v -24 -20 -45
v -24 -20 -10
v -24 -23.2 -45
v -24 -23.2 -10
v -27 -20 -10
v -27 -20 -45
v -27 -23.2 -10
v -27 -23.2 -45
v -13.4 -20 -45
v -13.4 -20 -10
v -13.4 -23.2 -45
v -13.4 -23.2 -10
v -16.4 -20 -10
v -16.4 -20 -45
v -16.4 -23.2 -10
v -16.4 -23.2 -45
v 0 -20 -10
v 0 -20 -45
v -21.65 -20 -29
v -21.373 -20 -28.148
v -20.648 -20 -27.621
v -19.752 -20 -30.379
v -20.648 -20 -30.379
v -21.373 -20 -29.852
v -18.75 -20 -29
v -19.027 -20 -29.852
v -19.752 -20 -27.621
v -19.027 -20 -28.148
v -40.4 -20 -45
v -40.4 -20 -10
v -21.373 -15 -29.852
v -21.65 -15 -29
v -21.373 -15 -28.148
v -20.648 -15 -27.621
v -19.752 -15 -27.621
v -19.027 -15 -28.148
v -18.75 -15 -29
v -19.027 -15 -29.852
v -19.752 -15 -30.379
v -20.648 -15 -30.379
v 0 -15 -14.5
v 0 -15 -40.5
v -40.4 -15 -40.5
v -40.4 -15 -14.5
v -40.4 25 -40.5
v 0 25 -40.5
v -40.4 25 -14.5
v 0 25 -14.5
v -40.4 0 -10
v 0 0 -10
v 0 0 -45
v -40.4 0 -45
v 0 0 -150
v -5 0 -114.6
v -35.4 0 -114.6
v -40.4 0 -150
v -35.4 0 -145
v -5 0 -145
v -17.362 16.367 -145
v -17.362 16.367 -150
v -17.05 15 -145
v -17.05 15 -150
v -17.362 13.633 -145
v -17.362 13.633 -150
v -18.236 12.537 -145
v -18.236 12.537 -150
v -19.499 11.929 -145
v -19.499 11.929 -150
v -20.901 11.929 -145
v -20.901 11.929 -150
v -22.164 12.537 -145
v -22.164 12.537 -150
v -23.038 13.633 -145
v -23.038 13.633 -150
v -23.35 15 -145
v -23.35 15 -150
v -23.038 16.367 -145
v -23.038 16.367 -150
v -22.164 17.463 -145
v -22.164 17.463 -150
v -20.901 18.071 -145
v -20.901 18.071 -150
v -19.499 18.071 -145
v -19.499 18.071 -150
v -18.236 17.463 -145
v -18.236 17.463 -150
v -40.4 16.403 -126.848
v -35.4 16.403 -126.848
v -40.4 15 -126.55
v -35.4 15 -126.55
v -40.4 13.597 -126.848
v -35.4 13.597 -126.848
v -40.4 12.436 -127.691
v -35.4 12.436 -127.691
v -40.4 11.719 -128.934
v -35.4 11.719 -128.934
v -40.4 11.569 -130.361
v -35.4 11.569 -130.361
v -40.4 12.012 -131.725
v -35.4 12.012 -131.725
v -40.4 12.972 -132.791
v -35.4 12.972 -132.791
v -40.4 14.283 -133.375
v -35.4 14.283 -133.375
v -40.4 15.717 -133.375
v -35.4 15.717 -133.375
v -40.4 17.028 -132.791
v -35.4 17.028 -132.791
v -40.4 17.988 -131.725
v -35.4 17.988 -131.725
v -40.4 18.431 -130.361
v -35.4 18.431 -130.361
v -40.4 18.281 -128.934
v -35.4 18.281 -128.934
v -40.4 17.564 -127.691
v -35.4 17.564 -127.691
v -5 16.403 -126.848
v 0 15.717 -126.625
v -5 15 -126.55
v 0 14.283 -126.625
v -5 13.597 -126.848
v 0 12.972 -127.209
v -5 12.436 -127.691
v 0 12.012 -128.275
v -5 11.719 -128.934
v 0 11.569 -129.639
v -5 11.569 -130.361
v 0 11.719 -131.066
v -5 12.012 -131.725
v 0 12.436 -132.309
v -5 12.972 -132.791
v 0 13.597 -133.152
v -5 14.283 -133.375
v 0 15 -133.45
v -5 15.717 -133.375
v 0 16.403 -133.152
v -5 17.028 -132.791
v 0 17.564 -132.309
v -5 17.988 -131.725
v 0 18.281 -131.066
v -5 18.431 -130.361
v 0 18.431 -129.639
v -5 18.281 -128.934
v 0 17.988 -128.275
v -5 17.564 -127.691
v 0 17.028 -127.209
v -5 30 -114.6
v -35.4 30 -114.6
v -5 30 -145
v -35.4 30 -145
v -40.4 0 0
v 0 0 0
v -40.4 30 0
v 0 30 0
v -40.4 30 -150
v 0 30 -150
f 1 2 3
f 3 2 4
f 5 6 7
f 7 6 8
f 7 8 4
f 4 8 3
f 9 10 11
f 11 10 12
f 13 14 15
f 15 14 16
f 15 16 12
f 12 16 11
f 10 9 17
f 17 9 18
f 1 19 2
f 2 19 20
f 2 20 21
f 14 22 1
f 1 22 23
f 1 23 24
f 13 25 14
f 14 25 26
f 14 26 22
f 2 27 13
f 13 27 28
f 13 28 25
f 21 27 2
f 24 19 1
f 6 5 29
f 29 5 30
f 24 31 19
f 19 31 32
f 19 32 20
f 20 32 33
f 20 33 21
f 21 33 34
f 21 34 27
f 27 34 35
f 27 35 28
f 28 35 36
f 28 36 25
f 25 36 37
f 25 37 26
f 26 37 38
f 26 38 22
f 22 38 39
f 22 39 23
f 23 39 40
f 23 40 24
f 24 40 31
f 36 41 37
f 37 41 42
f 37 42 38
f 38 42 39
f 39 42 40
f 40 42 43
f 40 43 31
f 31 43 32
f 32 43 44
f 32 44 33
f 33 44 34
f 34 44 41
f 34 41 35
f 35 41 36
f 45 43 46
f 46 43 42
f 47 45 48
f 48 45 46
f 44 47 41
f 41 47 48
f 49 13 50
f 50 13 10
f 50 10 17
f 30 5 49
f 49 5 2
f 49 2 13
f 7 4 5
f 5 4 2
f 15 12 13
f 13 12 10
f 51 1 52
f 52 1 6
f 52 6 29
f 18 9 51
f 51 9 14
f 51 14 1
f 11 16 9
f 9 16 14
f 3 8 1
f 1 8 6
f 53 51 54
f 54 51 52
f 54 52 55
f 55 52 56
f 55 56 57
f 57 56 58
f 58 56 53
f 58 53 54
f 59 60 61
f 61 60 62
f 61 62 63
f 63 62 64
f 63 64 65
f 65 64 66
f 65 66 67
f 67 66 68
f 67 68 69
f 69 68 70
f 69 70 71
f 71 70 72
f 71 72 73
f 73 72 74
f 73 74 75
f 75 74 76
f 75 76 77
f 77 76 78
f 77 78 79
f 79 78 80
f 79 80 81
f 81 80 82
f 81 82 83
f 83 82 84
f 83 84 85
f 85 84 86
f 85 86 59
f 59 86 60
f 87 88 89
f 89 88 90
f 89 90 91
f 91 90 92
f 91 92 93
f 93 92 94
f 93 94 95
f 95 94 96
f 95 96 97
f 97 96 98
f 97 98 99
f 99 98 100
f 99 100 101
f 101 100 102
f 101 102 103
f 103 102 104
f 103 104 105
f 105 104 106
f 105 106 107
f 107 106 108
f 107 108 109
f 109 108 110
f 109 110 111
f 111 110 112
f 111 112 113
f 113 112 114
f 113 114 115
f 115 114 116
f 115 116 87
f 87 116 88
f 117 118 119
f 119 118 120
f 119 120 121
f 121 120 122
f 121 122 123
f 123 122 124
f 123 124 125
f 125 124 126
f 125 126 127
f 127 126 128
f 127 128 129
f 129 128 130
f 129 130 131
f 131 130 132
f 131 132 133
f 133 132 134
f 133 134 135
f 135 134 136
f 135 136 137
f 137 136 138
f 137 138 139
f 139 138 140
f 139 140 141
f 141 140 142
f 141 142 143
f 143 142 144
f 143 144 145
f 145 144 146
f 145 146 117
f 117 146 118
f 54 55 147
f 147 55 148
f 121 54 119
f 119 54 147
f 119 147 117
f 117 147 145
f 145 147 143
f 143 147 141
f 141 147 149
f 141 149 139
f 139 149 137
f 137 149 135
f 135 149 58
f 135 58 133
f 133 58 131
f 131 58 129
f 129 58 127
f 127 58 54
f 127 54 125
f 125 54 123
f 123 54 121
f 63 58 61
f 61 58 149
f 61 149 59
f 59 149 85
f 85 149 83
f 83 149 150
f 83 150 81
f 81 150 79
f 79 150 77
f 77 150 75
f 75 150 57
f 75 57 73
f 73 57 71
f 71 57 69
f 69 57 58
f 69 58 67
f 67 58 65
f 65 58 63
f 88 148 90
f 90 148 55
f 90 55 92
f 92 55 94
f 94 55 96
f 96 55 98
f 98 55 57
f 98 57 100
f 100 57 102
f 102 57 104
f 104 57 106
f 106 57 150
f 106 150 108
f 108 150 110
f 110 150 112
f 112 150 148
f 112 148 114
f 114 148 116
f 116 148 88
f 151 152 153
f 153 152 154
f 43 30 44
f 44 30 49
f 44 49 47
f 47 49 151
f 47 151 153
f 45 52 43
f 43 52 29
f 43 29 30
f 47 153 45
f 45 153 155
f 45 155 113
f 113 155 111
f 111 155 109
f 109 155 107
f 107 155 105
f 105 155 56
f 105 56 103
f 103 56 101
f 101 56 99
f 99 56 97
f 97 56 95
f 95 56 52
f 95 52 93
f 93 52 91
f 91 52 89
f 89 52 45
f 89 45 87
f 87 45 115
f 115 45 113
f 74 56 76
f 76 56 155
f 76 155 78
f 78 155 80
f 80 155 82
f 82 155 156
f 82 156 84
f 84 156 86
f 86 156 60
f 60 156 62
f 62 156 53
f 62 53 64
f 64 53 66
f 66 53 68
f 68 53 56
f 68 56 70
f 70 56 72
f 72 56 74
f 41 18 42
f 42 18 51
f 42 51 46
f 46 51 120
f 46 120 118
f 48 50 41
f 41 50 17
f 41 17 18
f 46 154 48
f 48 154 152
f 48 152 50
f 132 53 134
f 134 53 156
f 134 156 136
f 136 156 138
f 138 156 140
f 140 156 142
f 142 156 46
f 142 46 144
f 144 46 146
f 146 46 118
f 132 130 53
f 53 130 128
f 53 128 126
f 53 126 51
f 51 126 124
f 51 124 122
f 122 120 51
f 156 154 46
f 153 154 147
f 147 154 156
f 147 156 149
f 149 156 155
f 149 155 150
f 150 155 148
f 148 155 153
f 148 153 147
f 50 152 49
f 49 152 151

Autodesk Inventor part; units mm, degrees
ref_plane "YZ Plane" through (0, 0, 0) normal (1, 0, 0) x (0, 1, 0)
ref_plane "XZ Plane" through (0, 0, 0) normal (0, 1, 0) x (-1, 0, 0)
ref_plane "XY Plane" through (0, 0, 0) normal (0, 0, 1) x (1, 0, 0)
sketch "스케치1" plane through (0, 0, 0) normal (0, 1, 0) x (-1, 0, 0)
  line L0 (40.4, 0) -> (0, 0)
  line L1 (0, 0) -> (0, -150)
  line L2 (0, -150) -> (40.4, -150)
  line L3 (40.4, -150) -> (40.4, 0)
  line L4 (35.4, -114.6) -> (5, -114.6)
  line L5 (5, -114.6) -> (5, -145)
  line L6 (5, -145) -> (35.4, -145)
  line L7 (35.4, -145) -> (35.4, -114.6)
  line L8 (20.2, -114.6) -> (20.2, -145) construction
  line L9 (35.4, -129.8) -> (5, -129.8) construction
  line L10 (35.65, -10) -> (4.75, -10)
  line L11 (4.75, -10) -> (4.75, -80)
  line L12 (4.75, -80) -> (35.65, -80)
  line L13 (35.65, -80) -> (35.65, -10)
  point P0 (20.2, -150)
  dimension "d0" = 30.4
  dimension "d1" = 30.4
  dimension "d2" = 5
  dimension "d3" = 5
  dimension "d4" = 5
  dimension "d5" = 70
  dimension "d6" = 4.75
  dimension "d7" = 4.75
  dimension "d8" = 10
  dimension "d9" = 150
extrude "돌출1" add sketch "스케치1" along normal blind 30
sketch "스케치2" plane through (0, 0, 0) normal (1, 0, 0) x (0, 0, -1)
  circle A0 centre (130, 15) radius 3.45
  line L0 (150, 0) -> (150, 30) projected
  line L1 (0, 30) -> (150, 30) projected
  point P0 (0, 0)
  dimension "d12" = 20
  dimension "d13" = 15
  dimension "d14" = 6.9
extrude "돌출2" cut sketch "스케치2" against normal blind 50
sketch "스케치3" plane through (0, 0, -150) normal (0, 0, -1) x (-1, 0, 0)
  circle A0 centre (20.2, 15) radius 3.15
  line L0 (0, 30) -> (40.4, 30) projected
  line L1 (40.4, 0) -> (40.4, 30) projected
  point P0 (0, 0)
  point P1 (20.2, 30)
  point P2 (40.4, 15)
  dimension "d17" = 6.3
extrude "돌출3" cut sketch "스케치3" against normal blind 10
extrude "돌출5" add sketch "스케치1" along normal up to surface (30 mm away) contours L13 L12 L11 L10
sketch "스케치5" plane through (0, 0, 0) normal (0, -1, 0) x (1, 0, 0)
  line L0 (-4.75, -10) -> (-35.65, -10)
  line L1 (-35.65, -10) -> (-35.65, -45)
  line L2 (-35.65, -45) -> (-4.75, -45)
  line L3 (-4.75, -45) -> (-4.75, -10)
  line L4 (-4.75, -10) -> (-4.75, -80) projected
  line L5 (-35.65, -10) -> (-4.75, -10) projected
  line L6 (0, -10) -> (-40.4, -10)
  line L7 (-40.4, -10) -> (-40.4, -45)
  line L8 (-40.4, -45) -> (0, -45)
  line L9 (0, -45) -> (0, -10)
  line L10 (0, 0) -> (0, -150) projected
  line L11 (-40.4, -150) -> (-40.4, 0) projected
  line L12 (-40.4, -150) -> (-40.4, 0) projected
  point P0 (-4.75, -45)
  dimension "d27" = 35
extrude "돌출6" add sketch "스케치5" along normal blind 20
sketch "스케치6" plane through (0, 0, -150) normal (1, 0, 0) x (0, 0, -1)
  line L0 (-135.5, -15) -> (-109.5, -15)
  line L1 (-109.5, -15) -> (-109.5, 25)
  line L2 (-109.5, 25) -> (-135.5, 25)
  line L3 (-135.5, 25) -> (-135.5, -15)
  line L4 (-150, 30) -> (0, 30) projected
  line L5 (-105, -20) -> (-140, -20) projected
  line L6 (-140, 0) -> (-140, -20) projected
  point P0 (-150, 0)
  dimension "d30" = 5
  dimension "d31" = 5
  dimension "d32" = 26
  dimension "d33" = 4.5
extrude "돌출7" cut sketch "스케치6" against normal up to surface (40.4 mm away)
sketch "스케치7" plane through (0, -15, -14.5) normal (0, 1, 0) x (1, 0, 0)
  circle A0 centre (-20.2, 14.5) radius 1.45
  line L0 (0, -4.5) -> (-40.4, -4.5) projected
  line L1 (-40.4, 30.5) -> (0, 30.5) projected
  point P0 (0, -14.5)
  point P1 (-20.2, 30.5)
  dimension "d36" = 2.9
  dimension "d37" = 19
extrude "돌출8" cut sketch "스케치7" against normal blind 10
sketch "스케치8" plane through (0, -20, 0) normal (0, -1, 0) x (1, 0, 0)
  line L0 (0, -10) -> (-40.4, -10) projected
  line L1 (-13.4, -10) -> (-16.4, -10)
  line L2 (-16.4, -10) -> (-16.4, -45)
  line L3 (-16.4, -45) -> (-13.4, -45)
  line L4 (-13.4, -45) -> (-13.4, -10)
  line L5 (-24, -10) -> (-27, -10)
  line L6 (-27, -10) -> (-27, -45)
  line L7 (-27, -45) -> (-24, -45)
  line L8 (-24, -45) -> (-24, -10)
  line L9 (-40.4, -45) -> (0, -45) projected
  circle A0 centre (-20.2, -29) radius 1.45 projected
  point P0 (0, 0)
  dimension "d40" = 7.6
  dimension "d41" = 3.8
  dimension "d42" = 3
  dimension "d43" = 3
extrude "돌출9" add sketch "스케치8" along normal blind 3.2 contours L4 L3 L2 L0 | L8 L7 L6 L0
properties part number "lever_support"
